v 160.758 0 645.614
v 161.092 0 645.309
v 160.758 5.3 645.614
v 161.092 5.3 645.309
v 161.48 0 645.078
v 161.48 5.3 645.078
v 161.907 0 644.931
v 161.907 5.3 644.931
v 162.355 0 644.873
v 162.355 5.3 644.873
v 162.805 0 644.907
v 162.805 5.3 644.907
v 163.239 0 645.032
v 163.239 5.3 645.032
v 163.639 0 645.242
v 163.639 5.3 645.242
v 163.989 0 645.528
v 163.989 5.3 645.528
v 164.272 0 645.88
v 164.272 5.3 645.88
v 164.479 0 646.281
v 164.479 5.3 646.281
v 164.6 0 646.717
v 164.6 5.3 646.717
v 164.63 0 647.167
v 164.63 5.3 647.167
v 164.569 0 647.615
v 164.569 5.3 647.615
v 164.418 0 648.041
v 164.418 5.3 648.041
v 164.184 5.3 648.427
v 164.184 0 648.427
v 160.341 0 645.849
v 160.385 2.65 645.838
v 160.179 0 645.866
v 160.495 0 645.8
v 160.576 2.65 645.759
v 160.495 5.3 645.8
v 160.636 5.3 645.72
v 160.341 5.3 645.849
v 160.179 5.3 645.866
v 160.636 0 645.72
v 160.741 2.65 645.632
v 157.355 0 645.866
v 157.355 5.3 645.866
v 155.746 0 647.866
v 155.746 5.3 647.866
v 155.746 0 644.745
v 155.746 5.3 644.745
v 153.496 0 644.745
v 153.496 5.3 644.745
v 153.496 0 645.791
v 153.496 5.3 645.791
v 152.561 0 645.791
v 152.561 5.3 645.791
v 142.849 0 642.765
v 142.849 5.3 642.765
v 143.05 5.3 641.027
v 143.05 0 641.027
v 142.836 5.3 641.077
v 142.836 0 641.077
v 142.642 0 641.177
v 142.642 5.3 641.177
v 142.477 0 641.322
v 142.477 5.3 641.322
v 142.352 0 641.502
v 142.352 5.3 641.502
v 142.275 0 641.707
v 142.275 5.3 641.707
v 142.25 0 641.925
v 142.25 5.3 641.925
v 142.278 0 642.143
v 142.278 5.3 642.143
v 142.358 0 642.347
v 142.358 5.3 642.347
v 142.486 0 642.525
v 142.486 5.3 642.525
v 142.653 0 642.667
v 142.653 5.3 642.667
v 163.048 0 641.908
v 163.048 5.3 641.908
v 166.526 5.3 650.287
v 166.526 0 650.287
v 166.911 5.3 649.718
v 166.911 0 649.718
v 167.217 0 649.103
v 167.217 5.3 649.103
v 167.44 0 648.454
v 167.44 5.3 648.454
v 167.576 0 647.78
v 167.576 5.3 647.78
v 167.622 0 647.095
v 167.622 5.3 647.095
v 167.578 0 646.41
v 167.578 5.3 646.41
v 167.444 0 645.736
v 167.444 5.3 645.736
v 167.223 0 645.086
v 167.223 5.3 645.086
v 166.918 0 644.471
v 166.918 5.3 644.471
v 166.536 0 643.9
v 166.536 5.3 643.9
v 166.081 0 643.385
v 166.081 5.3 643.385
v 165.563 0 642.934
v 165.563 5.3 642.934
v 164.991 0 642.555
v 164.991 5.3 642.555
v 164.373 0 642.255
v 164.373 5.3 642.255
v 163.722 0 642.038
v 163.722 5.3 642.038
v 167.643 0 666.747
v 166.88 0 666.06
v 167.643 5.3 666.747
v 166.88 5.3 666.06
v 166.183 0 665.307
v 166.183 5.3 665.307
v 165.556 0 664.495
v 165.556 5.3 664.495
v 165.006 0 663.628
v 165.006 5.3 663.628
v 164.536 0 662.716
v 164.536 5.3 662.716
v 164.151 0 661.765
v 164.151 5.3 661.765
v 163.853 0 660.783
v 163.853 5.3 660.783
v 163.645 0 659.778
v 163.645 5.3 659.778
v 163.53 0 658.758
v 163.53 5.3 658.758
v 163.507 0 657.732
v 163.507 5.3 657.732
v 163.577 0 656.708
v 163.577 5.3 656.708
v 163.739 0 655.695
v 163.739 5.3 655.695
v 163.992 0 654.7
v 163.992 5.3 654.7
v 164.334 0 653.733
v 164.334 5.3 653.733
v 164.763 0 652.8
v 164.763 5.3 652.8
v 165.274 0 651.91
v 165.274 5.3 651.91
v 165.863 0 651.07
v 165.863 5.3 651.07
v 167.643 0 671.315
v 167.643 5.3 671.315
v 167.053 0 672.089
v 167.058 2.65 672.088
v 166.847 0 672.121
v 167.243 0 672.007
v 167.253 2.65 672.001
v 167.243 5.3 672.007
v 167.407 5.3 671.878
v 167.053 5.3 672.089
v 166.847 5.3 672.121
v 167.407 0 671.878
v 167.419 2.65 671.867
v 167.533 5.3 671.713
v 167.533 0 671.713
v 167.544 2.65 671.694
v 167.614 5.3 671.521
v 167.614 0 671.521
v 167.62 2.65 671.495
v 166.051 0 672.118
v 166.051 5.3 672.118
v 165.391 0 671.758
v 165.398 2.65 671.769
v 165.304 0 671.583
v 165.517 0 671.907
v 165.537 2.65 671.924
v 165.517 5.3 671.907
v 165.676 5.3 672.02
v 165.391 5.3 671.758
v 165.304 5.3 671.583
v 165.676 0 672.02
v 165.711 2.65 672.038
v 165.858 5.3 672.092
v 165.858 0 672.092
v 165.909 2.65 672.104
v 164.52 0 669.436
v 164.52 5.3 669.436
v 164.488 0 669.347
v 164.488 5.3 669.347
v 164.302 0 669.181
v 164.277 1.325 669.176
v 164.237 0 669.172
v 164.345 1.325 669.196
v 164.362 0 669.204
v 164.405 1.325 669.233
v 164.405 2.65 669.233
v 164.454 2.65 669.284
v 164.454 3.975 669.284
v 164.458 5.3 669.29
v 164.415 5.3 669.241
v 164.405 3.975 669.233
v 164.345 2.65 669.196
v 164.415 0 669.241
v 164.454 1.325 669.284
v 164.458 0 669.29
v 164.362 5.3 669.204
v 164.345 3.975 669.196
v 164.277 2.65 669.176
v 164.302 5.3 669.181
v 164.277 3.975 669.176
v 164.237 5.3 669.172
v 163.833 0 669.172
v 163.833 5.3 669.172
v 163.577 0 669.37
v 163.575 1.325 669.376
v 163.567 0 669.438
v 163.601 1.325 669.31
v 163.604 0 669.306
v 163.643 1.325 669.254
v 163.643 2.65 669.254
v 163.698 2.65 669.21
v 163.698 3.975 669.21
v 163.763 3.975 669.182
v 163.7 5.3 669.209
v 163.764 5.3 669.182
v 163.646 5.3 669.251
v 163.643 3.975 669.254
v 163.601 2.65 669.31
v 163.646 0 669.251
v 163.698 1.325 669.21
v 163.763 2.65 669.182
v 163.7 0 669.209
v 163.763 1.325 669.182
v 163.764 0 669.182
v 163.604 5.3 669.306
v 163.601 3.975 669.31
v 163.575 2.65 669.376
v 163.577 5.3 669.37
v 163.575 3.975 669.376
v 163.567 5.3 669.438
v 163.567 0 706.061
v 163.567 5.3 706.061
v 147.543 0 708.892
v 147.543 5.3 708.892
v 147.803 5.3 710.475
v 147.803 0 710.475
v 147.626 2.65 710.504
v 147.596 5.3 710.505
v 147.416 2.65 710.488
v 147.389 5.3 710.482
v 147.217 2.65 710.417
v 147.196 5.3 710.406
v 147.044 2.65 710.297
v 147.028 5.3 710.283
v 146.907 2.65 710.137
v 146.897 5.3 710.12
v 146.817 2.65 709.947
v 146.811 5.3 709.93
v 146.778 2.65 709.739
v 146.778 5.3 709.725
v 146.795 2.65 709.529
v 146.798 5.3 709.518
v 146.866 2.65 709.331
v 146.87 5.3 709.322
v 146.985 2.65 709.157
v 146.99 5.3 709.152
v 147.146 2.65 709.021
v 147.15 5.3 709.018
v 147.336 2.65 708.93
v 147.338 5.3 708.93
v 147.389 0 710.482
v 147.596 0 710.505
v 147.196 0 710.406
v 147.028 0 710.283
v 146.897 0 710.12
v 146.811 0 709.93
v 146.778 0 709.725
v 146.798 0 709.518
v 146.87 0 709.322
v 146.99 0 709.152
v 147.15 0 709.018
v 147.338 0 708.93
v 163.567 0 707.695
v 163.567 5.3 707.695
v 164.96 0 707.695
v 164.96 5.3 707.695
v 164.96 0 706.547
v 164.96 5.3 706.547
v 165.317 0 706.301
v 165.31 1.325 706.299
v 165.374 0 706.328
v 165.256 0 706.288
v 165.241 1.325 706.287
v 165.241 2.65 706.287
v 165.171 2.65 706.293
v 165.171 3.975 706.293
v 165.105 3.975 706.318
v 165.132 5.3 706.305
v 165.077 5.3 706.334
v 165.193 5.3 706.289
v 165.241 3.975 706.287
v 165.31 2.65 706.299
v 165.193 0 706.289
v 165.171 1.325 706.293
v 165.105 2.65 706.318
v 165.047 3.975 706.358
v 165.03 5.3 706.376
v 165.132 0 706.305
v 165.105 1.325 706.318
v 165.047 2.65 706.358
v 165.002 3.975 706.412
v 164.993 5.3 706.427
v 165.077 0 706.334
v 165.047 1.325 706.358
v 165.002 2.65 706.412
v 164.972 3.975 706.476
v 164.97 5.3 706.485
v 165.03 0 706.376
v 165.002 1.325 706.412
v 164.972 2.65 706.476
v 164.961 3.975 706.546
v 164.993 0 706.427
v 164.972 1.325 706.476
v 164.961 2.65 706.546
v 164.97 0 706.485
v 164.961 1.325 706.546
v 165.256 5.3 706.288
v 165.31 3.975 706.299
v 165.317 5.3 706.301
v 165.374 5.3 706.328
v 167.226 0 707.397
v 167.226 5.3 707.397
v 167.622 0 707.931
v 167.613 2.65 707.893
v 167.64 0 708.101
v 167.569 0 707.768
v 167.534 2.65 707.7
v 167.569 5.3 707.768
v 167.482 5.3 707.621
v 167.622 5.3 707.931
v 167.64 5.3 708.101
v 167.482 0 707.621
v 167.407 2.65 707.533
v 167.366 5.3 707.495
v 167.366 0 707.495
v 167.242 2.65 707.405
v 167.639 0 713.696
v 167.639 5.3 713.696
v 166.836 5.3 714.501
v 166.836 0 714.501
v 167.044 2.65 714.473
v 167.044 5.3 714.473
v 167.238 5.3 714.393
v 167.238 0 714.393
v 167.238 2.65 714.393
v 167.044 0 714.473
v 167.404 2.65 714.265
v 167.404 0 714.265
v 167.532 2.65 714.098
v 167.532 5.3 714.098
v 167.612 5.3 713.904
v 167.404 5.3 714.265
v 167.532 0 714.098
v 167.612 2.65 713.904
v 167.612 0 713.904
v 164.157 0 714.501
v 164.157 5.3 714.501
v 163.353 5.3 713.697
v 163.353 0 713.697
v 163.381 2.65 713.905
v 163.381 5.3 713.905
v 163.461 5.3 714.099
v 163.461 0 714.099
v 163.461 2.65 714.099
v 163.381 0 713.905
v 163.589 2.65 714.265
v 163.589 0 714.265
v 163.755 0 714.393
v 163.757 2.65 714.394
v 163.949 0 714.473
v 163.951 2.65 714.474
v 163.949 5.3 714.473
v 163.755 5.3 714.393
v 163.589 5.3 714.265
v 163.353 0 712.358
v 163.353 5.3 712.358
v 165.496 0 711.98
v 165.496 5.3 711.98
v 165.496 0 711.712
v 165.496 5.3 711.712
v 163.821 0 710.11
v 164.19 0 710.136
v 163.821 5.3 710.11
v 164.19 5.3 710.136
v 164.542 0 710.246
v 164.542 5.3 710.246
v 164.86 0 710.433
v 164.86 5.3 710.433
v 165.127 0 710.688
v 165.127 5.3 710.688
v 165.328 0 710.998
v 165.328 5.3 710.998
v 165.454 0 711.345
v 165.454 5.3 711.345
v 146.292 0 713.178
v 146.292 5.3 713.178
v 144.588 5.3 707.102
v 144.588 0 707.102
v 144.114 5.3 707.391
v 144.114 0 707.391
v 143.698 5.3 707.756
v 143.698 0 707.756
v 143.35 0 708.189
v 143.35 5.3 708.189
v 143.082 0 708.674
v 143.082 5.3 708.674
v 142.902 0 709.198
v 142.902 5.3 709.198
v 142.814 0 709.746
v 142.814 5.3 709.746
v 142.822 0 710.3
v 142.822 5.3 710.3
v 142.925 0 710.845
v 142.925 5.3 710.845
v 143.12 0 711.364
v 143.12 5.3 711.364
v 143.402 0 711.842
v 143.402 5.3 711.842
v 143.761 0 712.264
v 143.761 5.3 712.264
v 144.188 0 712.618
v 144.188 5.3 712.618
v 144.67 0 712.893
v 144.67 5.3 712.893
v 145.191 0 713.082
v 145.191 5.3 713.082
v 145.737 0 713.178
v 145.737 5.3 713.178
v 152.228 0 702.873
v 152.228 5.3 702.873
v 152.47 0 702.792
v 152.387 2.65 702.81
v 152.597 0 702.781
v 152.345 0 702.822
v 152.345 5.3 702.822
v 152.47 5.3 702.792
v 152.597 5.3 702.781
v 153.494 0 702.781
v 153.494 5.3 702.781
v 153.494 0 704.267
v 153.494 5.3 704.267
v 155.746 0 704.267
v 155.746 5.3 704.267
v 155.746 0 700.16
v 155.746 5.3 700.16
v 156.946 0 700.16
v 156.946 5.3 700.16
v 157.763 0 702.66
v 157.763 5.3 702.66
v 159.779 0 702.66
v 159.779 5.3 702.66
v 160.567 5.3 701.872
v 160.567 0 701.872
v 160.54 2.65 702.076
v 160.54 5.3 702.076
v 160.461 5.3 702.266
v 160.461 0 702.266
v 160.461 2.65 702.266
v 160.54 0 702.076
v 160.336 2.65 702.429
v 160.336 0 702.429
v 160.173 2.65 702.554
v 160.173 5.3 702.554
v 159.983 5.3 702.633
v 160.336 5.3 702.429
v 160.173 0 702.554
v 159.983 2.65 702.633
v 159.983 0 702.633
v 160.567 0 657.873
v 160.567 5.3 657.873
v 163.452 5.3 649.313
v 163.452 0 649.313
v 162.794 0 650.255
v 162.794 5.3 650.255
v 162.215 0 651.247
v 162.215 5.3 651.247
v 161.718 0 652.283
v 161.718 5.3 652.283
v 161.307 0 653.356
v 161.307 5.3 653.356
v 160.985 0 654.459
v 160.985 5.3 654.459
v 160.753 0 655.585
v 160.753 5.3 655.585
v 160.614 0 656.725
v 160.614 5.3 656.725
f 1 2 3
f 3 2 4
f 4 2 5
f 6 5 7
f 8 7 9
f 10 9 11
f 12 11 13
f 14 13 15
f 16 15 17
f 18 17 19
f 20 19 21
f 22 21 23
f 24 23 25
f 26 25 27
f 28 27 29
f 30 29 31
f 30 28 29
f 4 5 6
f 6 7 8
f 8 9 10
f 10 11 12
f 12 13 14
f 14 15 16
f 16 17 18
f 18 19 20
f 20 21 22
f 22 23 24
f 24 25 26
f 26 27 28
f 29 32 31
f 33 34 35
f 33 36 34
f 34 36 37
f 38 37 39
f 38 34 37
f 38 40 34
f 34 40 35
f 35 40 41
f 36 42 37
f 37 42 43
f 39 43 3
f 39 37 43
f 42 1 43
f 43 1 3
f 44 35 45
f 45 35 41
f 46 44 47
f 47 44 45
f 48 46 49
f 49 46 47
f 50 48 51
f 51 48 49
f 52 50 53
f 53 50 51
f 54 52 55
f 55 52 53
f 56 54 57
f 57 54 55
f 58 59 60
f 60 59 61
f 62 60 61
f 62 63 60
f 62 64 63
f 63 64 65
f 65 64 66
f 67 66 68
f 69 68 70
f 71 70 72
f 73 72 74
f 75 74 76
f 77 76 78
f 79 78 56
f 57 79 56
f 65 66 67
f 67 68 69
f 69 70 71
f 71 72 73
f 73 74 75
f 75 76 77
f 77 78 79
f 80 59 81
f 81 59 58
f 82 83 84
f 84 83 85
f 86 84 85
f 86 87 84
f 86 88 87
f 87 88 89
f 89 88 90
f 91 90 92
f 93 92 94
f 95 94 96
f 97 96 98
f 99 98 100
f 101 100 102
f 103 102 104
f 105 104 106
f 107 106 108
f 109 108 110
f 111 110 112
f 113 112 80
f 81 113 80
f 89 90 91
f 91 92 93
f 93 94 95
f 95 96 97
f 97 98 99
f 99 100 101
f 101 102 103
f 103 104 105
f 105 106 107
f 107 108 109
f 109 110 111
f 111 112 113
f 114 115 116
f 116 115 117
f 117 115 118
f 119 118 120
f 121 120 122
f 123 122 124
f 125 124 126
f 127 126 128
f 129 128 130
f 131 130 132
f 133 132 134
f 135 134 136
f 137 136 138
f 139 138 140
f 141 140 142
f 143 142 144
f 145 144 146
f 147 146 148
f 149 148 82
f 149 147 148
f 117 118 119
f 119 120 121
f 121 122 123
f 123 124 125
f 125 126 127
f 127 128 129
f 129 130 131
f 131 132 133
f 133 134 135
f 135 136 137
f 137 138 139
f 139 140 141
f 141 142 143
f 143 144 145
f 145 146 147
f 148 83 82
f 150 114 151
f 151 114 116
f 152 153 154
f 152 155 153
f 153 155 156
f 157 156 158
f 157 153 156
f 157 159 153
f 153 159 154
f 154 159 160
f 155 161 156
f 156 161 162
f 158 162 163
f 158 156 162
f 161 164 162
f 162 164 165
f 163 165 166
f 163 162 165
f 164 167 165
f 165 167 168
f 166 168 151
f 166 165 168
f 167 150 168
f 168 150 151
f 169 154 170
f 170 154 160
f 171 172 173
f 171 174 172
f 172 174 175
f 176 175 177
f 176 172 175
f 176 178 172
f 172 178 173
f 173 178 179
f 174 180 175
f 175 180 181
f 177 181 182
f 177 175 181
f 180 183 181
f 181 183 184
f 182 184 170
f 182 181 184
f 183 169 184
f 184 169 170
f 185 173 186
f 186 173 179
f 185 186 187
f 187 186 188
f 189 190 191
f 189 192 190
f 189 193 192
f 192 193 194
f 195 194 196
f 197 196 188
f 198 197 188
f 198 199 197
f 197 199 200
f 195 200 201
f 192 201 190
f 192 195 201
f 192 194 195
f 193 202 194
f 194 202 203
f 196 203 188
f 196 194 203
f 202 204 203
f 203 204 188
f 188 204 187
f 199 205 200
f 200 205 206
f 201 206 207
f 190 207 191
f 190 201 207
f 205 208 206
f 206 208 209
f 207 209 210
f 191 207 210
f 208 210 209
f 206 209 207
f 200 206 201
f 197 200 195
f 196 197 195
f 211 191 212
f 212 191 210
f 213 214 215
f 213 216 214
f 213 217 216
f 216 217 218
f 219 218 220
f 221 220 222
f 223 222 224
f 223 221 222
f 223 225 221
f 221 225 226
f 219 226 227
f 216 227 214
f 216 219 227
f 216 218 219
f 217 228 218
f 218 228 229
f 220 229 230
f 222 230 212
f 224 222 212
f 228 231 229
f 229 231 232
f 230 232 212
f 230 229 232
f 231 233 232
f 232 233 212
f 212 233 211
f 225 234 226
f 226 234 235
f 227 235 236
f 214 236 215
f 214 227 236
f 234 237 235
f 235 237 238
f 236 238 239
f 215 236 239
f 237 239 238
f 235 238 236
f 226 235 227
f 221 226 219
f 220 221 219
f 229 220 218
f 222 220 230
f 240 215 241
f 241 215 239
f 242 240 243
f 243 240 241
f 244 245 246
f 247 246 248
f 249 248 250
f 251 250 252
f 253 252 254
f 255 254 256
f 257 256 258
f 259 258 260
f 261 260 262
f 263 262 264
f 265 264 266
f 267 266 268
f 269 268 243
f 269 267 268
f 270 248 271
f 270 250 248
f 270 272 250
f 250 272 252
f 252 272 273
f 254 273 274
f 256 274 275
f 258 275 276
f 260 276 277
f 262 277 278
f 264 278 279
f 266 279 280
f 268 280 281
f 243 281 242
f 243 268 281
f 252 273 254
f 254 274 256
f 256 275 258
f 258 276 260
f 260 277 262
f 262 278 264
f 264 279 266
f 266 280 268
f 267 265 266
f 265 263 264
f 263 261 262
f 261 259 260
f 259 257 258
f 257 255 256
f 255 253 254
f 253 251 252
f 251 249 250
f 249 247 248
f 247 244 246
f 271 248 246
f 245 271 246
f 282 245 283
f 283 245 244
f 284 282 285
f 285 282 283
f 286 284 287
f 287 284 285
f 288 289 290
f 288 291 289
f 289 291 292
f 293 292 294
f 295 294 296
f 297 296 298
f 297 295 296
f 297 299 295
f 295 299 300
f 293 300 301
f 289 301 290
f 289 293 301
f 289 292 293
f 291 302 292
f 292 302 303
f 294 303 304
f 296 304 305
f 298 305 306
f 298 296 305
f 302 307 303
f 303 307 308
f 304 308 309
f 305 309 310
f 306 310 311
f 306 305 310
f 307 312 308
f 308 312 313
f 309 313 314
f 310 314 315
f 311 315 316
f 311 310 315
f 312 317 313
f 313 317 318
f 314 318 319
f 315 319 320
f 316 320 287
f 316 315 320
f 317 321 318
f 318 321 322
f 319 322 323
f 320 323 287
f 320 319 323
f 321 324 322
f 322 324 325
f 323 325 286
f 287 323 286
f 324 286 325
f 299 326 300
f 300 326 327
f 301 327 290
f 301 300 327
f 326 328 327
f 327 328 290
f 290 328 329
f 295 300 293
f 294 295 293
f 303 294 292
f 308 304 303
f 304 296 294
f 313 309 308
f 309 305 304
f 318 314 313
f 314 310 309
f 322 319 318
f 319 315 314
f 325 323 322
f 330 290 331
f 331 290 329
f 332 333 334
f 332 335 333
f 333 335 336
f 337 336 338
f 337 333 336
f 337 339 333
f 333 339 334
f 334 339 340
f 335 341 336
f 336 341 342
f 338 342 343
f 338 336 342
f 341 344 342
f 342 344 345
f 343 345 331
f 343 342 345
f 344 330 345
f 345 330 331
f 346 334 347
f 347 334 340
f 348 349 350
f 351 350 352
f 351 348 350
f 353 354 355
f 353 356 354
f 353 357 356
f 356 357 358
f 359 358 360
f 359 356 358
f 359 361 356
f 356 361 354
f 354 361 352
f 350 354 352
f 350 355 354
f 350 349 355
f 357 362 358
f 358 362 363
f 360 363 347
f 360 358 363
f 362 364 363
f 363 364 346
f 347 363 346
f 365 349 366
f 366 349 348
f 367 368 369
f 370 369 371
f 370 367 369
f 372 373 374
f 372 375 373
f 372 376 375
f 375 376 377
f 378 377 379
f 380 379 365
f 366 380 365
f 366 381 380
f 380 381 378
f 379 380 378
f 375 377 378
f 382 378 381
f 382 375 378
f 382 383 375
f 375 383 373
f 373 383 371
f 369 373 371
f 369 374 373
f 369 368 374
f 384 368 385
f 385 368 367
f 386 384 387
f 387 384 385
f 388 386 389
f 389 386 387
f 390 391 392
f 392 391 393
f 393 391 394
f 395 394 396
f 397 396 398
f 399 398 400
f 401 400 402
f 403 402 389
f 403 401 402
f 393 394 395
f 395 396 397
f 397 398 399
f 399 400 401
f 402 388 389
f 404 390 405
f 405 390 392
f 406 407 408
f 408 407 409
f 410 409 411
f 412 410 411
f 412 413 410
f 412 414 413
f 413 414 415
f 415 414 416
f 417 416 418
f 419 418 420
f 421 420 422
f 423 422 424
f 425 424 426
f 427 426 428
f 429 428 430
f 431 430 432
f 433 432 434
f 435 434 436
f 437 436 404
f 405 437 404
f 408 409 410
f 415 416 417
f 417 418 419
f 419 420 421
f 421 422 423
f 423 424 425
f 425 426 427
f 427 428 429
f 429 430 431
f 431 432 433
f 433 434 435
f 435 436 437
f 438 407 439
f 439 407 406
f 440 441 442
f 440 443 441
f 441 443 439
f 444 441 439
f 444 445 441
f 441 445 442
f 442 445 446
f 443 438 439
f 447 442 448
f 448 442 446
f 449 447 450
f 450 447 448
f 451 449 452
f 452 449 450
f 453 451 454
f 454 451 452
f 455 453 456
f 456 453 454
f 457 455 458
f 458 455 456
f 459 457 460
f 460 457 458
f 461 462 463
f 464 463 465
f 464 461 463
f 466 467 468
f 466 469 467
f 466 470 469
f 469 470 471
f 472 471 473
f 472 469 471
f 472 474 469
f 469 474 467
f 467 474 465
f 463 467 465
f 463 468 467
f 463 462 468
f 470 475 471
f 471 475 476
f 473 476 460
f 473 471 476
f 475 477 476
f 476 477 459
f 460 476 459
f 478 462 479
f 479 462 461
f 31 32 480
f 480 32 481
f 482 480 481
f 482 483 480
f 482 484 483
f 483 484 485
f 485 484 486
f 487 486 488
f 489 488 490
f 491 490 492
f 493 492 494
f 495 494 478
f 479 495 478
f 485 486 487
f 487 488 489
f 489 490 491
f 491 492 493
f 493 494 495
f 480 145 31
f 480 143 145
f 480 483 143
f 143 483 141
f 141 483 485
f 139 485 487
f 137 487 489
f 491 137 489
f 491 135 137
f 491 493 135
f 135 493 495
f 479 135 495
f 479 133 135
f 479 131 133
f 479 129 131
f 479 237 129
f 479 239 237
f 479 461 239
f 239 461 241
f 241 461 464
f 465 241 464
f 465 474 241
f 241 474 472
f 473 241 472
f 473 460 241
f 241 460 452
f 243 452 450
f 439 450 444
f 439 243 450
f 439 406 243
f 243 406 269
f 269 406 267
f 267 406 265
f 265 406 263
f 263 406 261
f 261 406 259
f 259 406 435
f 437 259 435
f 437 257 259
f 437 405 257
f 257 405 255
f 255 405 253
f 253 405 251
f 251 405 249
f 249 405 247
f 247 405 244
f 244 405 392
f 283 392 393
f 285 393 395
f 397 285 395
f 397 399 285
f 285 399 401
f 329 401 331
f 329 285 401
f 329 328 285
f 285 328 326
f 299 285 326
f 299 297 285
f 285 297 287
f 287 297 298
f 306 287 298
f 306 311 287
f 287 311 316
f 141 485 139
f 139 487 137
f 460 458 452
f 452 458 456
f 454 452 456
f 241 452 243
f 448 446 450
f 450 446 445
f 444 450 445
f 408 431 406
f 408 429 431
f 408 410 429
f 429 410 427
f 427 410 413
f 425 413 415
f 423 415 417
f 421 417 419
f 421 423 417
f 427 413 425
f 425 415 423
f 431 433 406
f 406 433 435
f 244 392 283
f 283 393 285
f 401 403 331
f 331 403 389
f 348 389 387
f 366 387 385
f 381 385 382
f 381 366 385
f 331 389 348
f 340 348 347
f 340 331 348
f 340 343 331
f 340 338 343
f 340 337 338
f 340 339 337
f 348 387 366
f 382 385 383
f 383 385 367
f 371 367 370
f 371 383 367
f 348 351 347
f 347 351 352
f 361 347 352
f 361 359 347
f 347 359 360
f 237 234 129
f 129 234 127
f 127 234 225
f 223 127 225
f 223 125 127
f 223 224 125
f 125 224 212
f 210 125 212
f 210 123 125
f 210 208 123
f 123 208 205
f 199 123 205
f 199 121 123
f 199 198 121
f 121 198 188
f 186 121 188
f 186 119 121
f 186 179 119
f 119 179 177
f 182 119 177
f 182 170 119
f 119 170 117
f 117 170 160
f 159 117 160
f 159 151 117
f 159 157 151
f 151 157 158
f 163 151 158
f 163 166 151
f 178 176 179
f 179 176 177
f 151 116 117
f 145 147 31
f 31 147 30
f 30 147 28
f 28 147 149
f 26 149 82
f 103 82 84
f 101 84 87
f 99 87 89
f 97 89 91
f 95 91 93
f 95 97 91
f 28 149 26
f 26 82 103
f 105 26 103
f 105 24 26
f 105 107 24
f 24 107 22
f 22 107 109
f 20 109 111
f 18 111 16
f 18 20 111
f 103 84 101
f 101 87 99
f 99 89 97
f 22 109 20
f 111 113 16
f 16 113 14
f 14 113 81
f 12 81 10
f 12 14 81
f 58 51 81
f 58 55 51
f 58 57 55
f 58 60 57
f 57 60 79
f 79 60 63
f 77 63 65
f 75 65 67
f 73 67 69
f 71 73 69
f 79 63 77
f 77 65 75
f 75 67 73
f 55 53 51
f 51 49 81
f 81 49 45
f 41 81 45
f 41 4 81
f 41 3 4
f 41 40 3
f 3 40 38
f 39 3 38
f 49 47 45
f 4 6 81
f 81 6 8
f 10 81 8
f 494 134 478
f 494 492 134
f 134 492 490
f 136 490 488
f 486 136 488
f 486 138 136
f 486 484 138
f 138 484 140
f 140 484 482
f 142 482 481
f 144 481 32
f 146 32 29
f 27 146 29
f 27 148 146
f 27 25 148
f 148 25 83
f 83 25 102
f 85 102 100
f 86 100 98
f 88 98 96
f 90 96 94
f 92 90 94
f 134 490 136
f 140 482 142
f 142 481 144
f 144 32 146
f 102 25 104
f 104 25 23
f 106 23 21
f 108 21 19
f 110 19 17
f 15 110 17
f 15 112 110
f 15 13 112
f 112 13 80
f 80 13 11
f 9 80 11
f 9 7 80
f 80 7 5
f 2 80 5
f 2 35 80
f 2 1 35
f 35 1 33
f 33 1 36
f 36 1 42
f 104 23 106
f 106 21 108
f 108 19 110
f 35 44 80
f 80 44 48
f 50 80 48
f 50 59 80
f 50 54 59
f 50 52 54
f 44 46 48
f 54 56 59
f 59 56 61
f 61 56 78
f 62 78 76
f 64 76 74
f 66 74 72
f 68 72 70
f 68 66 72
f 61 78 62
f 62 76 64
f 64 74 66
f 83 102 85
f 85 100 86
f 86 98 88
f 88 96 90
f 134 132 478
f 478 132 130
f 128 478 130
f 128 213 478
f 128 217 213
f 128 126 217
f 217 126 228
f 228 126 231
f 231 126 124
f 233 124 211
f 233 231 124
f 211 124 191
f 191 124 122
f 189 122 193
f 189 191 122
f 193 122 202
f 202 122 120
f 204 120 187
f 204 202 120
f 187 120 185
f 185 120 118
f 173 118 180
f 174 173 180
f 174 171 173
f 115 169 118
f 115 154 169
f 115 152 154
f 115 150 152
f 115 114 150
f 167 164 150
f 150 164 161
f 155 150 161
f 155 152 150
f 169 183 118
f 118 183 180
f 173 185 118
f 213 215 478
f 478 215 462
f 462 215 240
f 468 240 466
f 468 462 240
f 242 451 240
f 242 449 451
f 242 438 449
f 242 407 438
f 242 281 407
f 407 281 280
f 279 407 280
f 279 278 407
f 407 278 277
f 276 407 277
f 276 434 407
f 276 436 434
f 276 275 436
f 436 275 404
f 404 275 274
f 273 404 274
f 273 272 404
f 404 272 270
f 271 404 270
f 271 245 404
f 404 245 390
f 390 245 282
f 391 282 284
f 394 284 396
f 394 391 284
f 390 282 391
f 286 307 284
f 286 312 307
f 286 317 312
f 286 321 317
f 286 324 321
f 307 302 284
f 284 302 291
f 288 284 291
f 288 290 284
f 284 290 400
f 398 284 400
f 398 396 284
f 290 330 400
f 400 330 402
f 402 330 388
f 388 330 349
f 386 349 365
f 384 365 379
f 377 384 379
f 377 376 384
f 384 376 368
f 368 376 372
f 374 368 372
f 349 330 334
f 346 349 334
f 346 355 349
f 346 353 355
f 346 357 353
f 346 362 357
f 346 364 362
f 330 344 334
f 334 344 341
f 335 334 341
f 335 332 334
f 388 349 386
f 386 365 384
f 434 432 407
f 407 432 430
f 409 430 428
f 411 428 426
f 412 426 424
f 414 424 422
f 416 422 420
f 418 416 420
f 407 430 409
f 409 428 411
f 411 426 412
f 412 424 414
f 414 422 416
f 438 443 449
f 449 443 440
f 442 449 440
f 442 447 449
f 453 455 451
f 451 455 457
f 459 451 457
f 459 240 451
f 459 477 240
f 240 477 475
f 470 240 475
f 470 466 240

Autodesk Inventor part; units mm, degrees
ref_plane "YZ Plane" through (0, 0, 0) normal (1, 0, 0) x (0, 1, 0)
ref_plane "XZ Plane" through (0, 0, 0) normal (0, 1, 0) x (-1, 0, 0)
ref_plane "XY Plane" through (0, 0, 0) normal (0, 0, 1) x (1, 0, 0)
sketch "Sketch1" plane through (0, 0, 0) normal (0, 1, 0) x (-1, 0, 0)
  arc A0 (-159.7794, 702.6597) -> (-160.5669, 701.8721) centre (-159.7794, 701.8721) ccw
  line L0 (-155.7462, 702.6597) -> (-155.7462, 704.2667)
  line L1 (-155.7462, 704.2667) -> (-153.4941, 704.2667)
  line L2 (-153.4941, 704.2667) -> (-153.4941, 702.7805)
  line L3 (-153.4941, 702.7805) -> (-152.5972, 702.7805)
  arc A1 (-164.1836, 648.4268) -> (-160.5669, 657.8731) centre (-174.7114, 657.8731) ccw
  line L4 (-160.5669, 657.8731) -> (-160.5669, 701.8721)
  arc A2 (-160.1794, 645.8656) -> (-160.7583, 645.6139) centre (-160.1783, 645.0714) ccw
  arc A3 (-164.1836, 648.4268) -> (-160.7583, 645.6139) centre (-162.4137, 647.0901) ccw
  line L5 (-155.7462, 645.8656) -> (-155.7462, 644.7447)
  line L6 (-155.7462, 644.7447) -> (-153.4959, 644.7447)
  line L7 (-153.4959, 644.7447) -> (-153.4959, 645.7914)
  arc A4 (-143.0499, 641.0266) -> (-142.8493, 642.7649) centre (-143.1468, 641.9185) ccw
  line L8 (-163.0475, 641.9081) -> (-143.0499, 641.0266)
  arc A5 (-166.5264, 650.2868) -> (-163.0475, 641.9081) centre (-162.4021, 647.0877) ccw
  arc A6 (-166.5264, 650.2868) -> (-167.6429, 666.7468) centre (-174.8334, 657.9912) ccw
  line L9 (-167.6429, 666.7468) -> (-167.6429, 671.3153)
  arc A7 (-166.8471, 672.1213) -> (-167.6429, 671.3153) centre (-166.8257, 671.3043) ccw
  line L10 (-166.8471, 672.1213) -> (-166.0512, 672.1176)
  arc A8 (-165.304, 671.5825) -> (-166.0512, 672.1176) centre (-166.0579, 671.319) ccw
  line L11 (-165.304, 671.5825) -> (-164.5204, 669.4361)
  line L12 (-164.5204, 669.4361) -> (-164.4882, 669.3468)
  arc A9 (-164.4882, 669.3468) -> (-164.2374, 669.1723) centre (-164.2343, 669.4443) ccw
  line L13 (-164.2374, 669.1723) -> (-163.8302, 669.1723)
  arc A10 (-163.8326, 669.1723) -> (-163.5671, 669.4384) centre (-163.8364, 669.4416) ccw
  line L14 (-163.5671, 669.4384) -> (-163.5671, 706.0242)
  line L15 (-163.5671, 706.0242) -> (-163.5671, 706.0613)
  line L16 (-163.5671, 706.0613) -> (-147.5434, 708.8923)
  arc A11 (-147.5434, 708.8923) -> (-147.8025, 710.4755) centre (-147.5845, 709.6983) ccw
  line L17 (-147.8025, 710.4755) -> (-163.5671, 707.6952)
  line L18 (-163.5671, 707.6952) -> (-164.9603, 707.6952)
  line L19 (-164.9603, 707.6952) -> (-164.9605, 706.5472)
  arc A12 (-165.374, 706.3282) -> (-164.9605, 706.5472) centre (-165.23, 706.5562) ccw
  line L20 (-165.374, 706.3282) -> (-167.226, 707.3966)
  arc A13 (-167.6397, 708.1008) -> (-167.226, 707.3966) centre (-166.8384, 708.0979) ccw
  line L21 (-167.6397, 708.1008) -> (-167.6393, 713.6964)
  arc A14 (-166.8357, 714.5011) -> (-167.6393, 713.6964) centre (-166.8345, 713.6963) ccw
  line L22 (-166.8357, 714.5011) -> (-164.1567, 714.5011)
  arc A15 (-163.353, 713.6974) -> (-164.1567, 714.5011) centre (-164.1583, 713.6958) ccw
  line L23 (-163.353, 713.6974) -> (-163.353, 712.3579)
  line L24 (-163.353, 712.3579) -> (-165.4962, 711.98)
  line L25 (-165.4962, 711.98) -> (-165.4962, 711.7118)
  arc A16 (-165.4962, 711.7118) -> (-163.8213, 710.1096) centre (-163.8924, 711.7118) ccw
  line L26 (-163.8213, 710.1096) -> (-146.2918, 713.1784)
  arc A17 (-144.5878, 707.1017) -> (-146.2918, 713.1784) centre (-146.018, 709.9779) ccw
  arc A18 (-152.5972, 702.7805) -> (-152.2275, 702.8725) centre (-152.6033, 703.5935) ccw
  line L27 (-155.7462, 702.6597) -> (-155.7462, 700.1597)
  line L28 (-155.7462, 700.1597) -> (-156.9462, 700.1597)
  line L29 (-156.9462, 700.1597) -> (-157.7628, 702.6597)
  line L30 (-157.7628, 702.6597) -> (-159.7794, 702.6597)
  line L31 (-155.7462, 645.8656) -> (-155.7462, 647.8656)
  line L32 (-155.7462, 647.8656) -> (-157.3545, 645.8656)
  line L33 (-157.3545, 645.8656) -> (-160.1794, 645.8656)
  line L34 (-142.8493, 642.7649) -> (-152.5613, 645.7914)
  line L35 (-144.5878, 707.1017) -> (-152.2275, 702.8725)
  line L36 (-152.5613, 645.7914) -> (-153.4959, 645.7914)
  point P0 (-160.5669, 683.588)
  dimension "d2" = 43.999
  dimension "d3" = 3.0002
  dimension "d6" = 2.5
  dimension "d7" = 1.2
  dimension "d8" = 2
extrude "Extrusion1" add sketch "Sketch1" along normal blind 5.3
properties part number "raspDinClipmmv2"
